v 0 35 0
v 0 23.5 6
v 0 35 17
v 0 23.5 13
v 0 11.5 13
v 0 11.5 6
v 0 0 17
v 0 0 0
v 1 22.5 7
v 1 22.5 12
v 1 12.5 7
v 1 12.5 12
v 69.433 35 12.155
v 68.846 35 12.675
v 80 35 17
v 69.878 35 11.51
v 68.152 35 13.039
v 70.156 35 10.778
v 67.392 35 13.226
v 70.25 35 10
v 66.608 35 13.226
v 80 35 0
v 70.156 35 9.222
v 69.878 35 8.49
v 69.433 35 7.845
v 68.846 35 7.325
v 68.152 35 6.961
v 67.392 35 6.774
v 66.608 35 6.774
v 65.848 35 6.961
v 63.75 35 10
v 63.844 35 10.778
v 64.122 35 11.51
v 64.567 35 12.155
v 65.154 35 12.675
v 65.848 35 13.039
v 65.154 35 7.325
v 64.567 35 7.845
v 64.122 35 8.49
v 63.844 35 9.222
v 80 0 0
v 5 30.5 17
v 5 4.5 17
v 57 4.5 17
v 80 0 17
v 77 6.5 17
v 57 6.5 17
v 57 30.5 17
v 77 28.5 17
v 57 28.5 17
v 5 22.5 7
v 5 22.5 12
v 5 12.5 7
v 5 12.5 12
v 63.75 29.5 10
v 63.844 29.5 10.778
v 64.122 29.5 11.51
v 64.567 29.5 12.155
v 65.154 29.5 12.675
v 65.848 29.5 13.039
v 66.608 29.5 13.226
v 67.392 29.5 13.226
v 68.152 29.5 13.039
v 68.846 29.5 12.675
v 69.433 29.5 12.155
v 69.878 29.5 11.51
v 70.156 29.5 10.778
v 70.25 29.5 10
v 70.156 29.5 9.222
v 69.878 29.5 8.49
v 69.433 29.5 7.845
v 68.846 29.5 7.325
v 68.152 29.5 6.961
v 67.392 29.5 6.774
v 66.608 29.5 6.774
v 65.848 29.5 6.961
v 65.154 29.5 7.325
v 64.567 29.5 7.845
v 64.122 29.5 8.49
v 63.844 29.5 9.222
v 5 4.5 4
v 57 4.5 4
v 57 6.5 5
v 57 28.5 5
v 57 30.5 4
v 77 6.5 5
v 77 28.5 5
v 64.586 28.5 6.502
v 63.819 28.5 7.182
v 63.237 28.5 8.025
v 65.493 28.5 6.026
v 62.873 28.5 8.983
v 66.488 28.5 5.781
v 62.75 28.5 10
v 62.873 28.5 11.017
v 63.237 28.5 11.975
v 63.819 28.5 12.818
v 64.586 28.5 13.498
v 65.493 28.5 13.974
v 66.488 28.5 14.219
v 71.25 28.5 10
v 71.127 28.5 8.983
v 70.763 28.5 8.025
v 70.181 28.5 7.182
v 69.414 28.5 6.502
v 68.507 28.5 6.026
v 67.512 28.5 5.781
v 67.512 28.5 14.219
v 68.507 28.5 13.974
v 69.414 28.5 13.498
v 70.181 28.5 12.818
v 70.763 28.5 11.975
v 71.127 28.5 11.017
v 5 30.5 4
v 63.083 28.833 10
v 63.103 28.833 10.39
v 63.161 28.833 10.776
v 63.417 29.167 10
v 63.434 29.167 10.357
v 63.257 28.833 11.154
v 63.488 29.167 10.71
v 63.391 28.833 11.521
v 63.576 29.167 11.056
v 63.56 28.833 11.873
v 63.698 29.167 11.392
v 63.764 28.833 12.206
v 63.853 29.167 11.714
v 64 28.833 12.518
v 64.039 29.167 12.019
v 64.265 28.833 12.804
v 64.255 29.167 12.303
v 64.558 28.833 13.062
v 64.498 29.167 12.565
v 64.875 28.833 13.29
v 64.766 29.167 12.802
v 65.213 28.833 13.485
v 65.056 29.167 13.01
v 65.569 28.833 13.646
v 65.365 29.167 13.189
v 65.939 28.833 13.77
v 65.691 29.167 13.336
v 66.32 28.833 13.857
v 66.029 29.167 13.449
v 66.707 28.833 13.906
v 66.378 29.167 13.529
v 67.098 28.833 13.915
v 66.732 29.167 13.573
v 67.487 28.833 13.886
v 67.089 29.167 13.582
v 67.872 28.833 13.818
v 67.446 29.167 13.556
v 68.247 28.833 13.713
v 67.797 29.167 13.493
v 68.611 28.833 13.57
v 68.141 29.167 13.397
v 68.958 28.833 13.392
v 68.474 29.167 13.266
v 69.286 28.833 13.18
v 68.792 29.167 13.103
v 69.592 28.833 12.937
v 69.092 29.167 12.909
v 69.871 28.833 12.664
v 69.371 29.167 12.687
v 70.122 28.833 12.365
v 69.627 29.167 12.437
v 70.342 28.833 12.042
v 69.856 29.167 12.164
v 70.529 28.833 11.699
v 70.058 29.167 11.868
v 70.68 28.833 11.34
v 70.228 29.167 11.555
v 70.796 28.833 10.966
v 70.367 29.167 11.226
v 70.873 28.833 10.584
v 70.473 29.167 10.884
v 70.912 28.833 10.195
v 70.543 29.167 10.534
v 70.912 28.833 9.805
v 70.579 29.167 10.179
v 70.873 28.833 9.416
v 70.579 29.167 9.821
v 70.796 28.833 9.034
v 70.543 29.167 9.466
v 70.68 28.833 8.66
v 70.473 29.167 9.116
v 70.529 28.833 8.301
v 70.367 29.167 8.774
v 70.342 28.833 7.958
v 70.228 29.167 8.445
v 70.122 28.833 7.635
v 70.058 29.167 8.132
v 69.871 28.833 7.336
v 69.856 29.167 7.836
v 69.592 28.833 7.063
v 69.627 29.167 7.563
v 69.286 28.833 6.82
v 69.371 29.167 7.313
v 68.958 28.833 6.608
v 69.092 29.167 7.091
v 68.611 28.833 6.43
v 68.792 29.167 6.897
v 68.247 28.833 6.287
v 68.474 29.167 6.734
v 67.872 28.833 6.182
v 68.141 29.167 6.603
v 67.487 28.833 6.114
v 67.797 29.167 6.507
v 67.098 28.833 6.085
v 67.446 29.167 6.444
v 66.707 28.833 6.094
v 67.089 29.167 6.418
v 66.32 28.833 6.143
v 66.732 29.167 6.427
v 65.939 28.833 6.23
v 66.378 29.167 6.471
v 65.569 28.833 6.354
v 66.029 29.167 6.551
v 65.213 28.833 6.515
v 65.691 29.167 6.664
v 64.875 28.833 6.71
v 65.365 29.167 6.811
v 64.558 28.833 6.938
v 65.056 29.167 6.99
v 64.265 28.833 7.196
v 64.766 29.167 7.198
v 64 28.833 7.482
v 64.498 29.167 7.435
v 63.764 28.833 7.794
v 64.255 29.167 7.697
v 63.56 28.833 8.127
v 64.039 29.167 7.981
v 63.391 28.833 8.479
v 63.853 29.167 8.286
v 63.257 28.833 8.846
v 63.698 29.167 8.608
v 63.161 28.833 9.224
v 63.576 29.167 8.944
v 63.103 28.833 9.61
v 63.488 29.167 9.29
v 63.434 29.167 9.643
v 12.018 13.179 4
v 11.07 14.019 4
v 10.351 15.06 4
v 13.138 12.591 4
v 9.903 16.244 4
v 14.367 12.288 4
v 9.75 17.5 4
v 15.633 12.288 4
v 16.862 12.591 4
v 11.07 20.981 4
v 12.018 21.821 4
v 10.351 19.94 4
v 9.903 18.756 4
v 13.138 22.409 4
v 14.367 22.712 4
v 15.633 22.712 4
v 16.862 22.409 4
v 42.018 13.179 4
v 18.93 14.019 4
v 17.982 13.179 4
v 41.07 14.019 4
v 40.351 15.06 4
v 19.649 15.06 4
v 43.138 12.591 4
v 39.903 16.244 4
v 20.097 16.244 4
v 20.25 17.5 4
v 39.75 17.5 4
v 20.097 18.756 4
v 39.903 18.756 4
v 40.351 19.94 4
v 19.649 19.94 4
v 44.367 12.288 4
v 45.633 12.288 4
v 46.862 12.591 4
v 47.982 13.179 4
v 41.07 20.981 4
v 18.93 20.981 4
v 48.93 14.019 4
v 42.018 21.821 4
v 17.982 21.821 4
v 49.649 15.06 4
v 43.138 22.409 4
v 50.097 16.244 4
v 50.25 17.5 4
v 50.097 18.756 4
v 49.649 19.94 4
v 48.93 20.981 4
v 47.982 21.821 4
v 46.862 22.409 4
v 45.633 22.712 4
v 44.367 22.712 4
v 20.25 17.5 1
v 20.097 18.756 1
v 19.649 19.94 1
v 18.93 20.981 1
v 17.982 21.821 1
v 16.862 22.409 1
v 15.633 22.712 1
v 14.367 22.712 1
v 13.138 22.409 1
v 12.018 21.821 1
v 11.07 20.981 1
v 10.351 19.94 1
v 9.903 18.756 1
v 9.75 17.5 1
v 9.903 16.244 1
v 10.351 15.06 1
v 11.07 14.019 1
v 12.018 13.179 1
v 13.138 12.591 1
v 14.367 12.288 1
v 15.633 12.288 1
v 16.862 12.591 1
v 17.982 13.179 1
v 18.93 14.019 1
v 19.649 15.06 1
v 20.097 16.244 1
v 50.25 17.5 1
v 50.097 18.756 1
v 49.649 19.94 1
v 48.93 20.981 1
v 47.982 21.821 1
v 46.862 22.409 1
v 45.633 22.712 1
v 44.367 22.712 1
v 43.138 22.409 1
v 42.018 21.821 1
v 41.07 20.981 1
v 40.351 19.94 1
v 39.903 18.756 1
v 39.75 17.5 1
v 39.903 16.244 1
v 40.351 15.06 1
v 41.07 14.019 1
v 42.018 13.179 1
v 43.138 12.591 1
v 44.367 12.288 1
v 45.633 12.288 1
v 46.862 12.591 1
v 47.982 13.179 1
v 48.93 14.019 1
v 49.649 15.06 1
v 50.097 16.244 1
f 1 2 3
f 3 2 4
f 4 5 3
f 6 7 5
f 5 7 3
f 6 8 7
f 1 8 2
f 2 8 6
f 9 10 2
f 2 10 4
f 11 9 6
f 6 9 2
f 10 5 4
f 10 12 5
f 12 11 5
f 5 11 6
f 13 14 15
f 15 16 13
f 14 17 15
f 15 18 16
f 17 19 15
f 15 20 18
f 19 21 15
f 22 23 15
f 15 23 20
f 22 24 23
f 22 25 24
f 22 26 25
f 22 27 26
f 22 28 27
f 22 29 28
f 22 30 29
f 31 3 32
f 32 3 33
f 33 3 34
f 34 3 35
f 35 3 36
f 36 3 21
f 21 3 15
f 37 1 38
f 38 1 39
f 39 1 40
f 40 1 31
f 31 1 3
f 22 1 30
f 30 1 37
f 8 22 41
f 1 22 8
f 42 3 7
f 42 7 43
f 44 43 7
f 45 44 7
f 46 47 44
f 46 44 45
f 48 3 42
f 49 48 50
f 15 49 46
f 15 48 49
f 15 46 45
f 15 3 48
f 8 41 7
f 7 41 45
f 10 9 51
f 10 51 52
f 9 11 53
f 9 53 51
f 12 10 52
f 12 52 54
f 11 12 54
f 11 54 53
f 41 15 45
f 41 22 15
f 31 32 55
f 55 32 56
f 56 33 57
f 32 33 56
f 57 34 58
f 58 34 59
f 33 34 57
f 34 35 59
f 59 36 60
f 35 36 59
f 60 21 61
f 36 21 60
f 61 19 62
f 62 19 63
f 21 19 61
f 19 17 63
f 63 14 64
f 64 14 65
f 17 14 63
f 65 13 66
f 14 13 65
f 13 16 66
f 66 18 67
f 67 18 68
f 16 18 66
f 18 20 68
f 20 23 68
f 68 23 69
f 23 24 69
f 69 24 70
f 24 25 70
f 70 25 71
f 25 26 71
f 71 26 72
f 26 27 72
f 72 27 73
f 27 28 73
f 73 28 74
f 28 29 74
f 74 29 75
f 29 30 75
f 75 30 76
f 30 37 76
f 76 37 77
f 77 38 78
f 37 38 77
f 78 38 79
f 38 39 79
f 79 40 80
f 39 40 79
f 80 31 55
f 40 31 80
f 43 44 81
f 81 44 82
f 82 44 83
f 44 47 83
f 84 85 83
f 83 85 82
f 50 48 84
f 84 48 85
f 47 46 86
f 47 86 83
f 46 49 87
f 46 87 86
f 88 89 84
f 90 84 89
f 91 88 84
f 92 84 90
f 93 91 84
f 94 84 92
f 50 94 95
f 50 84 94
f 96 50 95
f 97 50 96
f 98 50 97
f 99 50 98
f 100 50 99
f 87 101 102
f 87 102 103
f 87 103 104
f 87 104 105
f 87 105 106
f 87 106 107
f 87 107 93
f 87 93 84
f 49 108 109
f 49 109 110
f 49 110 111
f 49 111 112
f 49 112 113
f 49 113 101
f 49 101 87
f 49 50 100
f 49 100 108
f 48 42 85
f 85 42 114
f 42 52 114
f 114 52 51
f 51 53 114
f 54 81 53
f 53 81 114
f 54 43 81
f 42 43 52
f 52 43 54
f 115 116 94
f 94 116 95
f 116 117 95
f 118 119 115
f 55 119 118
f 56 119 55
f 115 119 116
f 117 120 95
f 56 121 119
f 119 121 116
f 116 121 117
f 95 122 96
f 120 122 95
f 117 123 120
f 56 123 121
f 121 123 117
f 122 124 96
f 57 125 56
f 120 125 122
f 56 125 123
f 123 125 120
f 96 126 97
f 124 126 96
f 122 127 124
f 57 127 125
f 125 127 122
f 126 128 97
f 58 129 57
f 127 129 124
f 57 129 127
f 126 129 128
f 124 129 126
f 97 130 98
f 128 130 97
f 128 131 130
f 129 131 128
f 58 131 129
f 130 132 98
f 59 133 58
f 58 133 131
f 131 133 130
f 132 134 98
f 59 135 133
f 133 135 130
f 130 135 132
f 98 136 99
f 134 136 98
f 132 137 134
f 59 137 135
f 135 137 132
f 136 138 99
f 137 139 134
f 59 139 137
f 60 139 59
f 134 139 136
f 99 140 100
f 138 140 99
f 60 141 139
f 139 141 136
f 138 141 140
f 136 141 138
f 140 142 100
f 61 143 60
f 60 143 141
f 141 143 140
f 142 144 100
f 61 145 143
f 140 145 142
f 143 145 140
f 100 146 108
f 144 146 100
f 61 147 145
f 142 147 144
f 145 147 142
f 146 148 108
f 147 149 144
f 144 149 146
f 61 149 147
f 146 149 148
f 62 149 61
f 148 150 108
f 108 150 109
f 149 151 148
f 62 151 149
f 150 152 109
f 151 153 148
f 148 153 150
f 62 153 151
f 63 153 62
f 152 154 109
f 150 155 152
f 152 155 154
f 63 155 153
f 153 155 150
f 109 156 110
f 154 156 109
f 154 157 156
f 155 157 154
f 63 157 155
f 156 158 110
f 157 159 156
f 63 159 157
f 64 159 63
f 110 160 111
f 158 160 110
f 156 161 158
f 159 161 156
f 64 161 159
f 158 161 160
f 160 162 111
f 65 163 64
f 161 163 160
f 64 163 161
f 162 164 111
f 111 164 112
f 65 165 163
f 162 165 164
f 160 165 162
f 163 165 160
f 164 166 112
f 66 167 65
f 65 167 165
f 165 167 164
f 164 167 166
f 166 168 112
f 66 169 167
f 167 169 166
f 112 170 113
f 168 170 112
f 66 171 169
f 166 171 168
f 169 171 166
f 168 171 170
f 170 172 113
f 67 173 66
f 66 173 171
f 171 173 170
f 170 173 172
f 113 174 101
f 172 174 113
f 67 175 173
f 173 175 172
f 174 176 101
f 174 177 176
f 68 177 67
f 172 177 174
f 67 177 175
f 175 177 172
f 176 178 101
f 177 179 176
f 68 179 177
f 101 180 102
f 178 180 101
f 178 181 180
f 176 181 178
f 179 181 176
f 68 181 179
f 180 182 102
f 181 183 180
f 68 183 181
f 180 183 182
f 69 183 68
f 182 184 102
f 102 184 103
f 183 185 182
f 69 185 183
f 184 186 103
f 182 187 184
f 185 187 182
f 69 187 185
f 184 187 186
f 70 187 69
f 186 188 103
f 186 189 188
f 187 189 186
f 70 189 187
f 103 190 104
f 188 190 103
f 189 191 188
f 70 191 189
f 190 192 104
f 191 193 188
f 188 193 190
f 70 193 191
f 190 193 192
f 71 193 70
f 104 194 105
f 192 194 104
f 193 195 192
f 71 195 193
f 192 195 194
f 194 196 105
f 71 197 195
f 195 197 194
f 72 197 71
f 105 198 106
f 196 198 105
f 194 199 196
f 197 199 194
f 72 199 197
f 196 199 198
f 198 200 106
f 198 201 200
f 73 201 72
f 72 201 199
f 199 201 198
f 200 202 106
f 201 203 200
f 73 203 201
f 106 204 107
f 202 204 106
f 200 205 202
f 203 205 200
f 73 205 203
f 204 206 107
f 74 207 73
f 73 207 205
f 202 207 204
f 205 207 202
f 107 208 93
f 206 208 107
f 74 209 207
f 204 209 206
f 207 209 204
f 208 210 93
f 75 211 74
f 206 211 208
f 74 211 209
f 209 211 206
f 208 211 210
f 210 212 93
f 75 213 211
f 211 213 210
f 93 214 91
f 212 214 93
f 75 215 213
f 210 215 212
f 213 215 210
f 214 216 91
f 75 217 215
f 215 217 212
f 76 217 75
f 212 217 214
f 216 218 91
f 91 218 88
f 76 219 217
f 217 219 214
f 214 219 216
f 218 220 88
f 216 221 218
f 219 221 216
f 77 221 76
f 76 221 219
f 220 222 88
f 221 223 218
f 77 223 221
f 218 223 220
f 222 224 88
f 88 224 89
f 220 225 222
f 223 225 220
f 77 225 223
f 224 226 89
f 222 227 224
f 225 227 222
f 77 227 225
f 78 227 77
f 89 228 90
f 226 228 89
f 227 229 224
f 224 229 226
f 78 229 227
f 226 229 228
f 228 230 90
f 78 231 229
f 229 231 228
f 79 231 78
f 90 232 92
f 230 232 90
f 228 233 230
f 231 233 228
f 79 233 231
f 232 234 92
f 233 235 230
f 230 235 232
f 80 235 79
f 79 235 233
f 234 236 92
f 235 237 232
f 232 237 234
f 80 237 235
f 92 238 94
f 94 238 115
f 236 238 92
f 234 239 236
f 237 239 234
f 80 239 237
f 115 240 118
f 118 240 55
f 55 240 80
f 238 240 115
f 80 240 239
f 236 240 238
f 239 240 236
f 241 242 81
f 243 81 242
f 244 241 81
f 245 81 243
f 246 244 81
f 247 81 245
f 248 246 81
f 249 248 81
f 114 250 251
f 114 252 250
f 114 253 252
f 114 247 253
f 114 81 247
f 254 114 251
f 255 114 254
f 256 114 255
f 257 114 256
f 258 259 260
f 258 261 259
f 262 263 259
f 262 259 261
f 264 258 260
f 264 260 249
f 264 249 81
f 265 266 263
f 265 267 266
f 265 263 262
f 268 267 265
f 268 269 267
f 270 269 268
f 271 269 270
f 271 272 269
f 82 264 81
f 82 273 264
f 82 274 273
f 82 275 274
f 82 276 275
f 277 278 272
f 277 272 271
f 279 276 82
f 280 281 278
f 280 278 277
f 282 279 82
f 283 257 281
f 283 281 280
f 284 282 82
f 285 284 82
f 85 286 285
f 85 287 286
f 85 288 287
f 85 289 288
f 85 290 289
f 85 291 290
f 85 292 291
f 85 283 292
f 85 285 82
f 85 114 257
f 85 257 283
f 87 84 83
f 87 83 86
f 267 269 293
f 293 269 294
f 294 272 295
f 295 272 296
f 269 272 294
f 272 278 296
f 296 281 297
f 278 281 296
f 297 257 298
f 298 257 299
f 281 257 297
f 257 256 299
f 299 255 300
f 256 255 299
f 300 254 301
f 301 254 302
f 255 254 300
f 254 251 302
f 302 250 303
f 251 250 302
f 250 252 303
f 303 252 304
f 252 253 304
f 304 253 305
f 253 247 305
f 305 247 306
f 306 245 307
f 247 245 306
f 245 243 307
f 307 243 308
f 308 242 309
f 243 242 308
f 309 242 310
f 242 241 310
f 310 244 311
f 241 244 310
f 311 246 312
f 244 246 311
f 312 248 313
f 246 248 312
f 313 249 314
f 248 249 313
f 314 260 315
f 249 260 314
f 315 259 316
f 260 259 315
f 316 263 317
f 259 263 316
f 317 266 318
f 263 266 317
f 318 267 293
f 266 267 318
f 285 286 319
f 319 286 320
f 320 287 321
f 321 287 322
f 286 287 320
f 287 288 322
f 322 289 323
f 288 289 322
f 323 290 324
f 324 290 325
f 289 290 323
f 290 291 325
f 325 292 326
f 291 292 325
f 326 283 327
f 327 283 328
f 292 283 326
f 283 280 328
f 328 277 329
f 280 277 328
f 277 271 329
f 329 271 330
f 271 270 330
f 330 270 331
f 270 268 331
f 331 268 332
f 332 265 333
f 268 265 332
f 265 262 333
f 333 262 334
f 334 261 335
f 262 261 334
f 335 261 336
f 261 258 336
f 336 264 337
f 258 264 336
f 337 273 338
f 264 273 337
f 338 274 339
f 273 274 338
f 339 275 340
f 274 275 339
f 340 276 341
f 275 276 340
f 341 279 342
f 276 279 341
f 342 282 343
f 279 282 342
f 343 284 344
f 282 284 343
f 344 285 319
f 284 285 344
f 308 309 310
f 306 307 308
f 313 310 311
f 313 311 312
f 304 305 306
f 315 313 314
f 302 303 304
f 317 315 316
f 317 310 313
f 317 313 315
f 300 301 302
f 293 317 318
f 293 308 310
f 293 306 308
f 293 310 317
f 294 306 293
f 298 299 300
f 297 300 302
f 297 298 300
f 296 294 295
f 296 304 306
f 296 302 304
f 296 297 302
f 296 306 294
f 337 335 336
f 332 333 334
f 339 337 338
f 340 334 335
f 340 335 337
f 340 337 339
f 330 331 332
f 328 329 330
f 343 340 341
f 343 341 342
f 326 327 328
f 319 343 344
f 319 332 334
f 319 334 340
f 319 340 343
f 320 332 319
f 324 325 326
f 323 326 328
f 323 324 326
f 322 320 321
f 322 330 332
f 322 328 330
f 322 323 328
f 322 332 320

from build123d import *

# Parameters (mm, degrees)
SKETCH_W        = 80
SKETCH_H        = 35
PAD_DEPTH       = 17
SKETCH001_W     = 52
SKETCH001_H     = 26
POCKET_DEPTH    = 13
SKETCH002_W     = 10
SKETCH002_H     = 5
POCKET001_DEPTH = 10
SKETCH005_R     = 5.25
POCKET004_DEPTH = 3
SKETCH007_W     = 20
SKETCH007_H     = 22
POCKET005_DEPTH = 12
SKETCH008_R     = 3.25
POCKET006_DEPTH = 6.5
CHAMFER_SIZE    = 1
CHAMFER001_SIZE = 1


with BuildPart() as part:
    # Sketch → Pad (new body)
    with BuildSketch(Plane.XY):
        with Locations((40, 17.5)):
            Rectangle(SKETCH_W, SKETCH_H)
    extrude(amount=PAD_DEPTH)

    # Sketch001 (on Face6 of Pad) → Pocket (cut)
    with BuildSketch(Plane.XY.offset(17)):
        with Locations((31, 17.5)):
            Rectangle(SKETCH001_W, SKETCH001_H)
    extrude(amount=-POCKET_DEPTH, mode=Mode.SUBTRACT)

    # Sketch002 (on Face2 of Pocket) → Pocket001 (cut)
    with BuildSketch(Plane(origin=(0, 0, 0), x_dir=(0, -1, 0), z_dir=(-1, 0, 0))):
        with Locations((-17.5, 9.5)):
            Rectangle(SKETCH002_W, SKETCH002_H)
    extrude(amount=-POCKET001_DEPTH, mode=Mode.SUBTRACT)

    # Sketch005 → Pocket004 (cut)
    with BuildSketch(Plane.XY.offset(4)):
        with Locations((15, 17.5)):
            Circle(SKETCH005_R)
        with Locations((45, 17.5)):
            Circle(SKETCH005_R)
    extrude(amount=-POCKET004_DEPTH, mode=Mode.SUBTRACT)

    # Sketch007 (on Face5 of Pocket004) → Pocket005 (cut)
    with BuildSketch(Plane.XY.offset(17)):
        with Locations((67, 17.5)):
            Rectangle(SKETCH007_W, SKETCH007_H)
    extrude(amount=-POCKET005_DEPTH, mode=Mode.SUBTRACT)

    # Sketch008 (on Face6 of Pocket005) → Pocket006 (cut)
    with BuildSketch(Plane(origin=(0, 35, 0), x_dir=(-1, 0, 0), z_dir=(0, 1, 0))):
        with Locations((-67, 10)):
            Circle(SKETCH008_R)
    extrude(amount=-POCKET006_DEPTH, mode=Mode.SUBTRACT)

    # Chamfer
    chamfer_edges = [part.edges().sort_by_distance(p)[0] for p in [
        (70.25, 28.5, 10),
    ]]
    chamfer(chamfer_edges, length=CHAMFER_SIZE)

    # Chamfer001
    chamfer001_edges = [part.edges().sort_by_distance(p)[0] for p in [
        (0, 22.5, 9.5),
        (0, 17.5, 7),
        (0, 17.5, 12),
        (0, 12.5, 9.5),
    ]]
    chamfer(chamfer001_edges, length=CHAMFER001_SIZE)


solid = part.part
